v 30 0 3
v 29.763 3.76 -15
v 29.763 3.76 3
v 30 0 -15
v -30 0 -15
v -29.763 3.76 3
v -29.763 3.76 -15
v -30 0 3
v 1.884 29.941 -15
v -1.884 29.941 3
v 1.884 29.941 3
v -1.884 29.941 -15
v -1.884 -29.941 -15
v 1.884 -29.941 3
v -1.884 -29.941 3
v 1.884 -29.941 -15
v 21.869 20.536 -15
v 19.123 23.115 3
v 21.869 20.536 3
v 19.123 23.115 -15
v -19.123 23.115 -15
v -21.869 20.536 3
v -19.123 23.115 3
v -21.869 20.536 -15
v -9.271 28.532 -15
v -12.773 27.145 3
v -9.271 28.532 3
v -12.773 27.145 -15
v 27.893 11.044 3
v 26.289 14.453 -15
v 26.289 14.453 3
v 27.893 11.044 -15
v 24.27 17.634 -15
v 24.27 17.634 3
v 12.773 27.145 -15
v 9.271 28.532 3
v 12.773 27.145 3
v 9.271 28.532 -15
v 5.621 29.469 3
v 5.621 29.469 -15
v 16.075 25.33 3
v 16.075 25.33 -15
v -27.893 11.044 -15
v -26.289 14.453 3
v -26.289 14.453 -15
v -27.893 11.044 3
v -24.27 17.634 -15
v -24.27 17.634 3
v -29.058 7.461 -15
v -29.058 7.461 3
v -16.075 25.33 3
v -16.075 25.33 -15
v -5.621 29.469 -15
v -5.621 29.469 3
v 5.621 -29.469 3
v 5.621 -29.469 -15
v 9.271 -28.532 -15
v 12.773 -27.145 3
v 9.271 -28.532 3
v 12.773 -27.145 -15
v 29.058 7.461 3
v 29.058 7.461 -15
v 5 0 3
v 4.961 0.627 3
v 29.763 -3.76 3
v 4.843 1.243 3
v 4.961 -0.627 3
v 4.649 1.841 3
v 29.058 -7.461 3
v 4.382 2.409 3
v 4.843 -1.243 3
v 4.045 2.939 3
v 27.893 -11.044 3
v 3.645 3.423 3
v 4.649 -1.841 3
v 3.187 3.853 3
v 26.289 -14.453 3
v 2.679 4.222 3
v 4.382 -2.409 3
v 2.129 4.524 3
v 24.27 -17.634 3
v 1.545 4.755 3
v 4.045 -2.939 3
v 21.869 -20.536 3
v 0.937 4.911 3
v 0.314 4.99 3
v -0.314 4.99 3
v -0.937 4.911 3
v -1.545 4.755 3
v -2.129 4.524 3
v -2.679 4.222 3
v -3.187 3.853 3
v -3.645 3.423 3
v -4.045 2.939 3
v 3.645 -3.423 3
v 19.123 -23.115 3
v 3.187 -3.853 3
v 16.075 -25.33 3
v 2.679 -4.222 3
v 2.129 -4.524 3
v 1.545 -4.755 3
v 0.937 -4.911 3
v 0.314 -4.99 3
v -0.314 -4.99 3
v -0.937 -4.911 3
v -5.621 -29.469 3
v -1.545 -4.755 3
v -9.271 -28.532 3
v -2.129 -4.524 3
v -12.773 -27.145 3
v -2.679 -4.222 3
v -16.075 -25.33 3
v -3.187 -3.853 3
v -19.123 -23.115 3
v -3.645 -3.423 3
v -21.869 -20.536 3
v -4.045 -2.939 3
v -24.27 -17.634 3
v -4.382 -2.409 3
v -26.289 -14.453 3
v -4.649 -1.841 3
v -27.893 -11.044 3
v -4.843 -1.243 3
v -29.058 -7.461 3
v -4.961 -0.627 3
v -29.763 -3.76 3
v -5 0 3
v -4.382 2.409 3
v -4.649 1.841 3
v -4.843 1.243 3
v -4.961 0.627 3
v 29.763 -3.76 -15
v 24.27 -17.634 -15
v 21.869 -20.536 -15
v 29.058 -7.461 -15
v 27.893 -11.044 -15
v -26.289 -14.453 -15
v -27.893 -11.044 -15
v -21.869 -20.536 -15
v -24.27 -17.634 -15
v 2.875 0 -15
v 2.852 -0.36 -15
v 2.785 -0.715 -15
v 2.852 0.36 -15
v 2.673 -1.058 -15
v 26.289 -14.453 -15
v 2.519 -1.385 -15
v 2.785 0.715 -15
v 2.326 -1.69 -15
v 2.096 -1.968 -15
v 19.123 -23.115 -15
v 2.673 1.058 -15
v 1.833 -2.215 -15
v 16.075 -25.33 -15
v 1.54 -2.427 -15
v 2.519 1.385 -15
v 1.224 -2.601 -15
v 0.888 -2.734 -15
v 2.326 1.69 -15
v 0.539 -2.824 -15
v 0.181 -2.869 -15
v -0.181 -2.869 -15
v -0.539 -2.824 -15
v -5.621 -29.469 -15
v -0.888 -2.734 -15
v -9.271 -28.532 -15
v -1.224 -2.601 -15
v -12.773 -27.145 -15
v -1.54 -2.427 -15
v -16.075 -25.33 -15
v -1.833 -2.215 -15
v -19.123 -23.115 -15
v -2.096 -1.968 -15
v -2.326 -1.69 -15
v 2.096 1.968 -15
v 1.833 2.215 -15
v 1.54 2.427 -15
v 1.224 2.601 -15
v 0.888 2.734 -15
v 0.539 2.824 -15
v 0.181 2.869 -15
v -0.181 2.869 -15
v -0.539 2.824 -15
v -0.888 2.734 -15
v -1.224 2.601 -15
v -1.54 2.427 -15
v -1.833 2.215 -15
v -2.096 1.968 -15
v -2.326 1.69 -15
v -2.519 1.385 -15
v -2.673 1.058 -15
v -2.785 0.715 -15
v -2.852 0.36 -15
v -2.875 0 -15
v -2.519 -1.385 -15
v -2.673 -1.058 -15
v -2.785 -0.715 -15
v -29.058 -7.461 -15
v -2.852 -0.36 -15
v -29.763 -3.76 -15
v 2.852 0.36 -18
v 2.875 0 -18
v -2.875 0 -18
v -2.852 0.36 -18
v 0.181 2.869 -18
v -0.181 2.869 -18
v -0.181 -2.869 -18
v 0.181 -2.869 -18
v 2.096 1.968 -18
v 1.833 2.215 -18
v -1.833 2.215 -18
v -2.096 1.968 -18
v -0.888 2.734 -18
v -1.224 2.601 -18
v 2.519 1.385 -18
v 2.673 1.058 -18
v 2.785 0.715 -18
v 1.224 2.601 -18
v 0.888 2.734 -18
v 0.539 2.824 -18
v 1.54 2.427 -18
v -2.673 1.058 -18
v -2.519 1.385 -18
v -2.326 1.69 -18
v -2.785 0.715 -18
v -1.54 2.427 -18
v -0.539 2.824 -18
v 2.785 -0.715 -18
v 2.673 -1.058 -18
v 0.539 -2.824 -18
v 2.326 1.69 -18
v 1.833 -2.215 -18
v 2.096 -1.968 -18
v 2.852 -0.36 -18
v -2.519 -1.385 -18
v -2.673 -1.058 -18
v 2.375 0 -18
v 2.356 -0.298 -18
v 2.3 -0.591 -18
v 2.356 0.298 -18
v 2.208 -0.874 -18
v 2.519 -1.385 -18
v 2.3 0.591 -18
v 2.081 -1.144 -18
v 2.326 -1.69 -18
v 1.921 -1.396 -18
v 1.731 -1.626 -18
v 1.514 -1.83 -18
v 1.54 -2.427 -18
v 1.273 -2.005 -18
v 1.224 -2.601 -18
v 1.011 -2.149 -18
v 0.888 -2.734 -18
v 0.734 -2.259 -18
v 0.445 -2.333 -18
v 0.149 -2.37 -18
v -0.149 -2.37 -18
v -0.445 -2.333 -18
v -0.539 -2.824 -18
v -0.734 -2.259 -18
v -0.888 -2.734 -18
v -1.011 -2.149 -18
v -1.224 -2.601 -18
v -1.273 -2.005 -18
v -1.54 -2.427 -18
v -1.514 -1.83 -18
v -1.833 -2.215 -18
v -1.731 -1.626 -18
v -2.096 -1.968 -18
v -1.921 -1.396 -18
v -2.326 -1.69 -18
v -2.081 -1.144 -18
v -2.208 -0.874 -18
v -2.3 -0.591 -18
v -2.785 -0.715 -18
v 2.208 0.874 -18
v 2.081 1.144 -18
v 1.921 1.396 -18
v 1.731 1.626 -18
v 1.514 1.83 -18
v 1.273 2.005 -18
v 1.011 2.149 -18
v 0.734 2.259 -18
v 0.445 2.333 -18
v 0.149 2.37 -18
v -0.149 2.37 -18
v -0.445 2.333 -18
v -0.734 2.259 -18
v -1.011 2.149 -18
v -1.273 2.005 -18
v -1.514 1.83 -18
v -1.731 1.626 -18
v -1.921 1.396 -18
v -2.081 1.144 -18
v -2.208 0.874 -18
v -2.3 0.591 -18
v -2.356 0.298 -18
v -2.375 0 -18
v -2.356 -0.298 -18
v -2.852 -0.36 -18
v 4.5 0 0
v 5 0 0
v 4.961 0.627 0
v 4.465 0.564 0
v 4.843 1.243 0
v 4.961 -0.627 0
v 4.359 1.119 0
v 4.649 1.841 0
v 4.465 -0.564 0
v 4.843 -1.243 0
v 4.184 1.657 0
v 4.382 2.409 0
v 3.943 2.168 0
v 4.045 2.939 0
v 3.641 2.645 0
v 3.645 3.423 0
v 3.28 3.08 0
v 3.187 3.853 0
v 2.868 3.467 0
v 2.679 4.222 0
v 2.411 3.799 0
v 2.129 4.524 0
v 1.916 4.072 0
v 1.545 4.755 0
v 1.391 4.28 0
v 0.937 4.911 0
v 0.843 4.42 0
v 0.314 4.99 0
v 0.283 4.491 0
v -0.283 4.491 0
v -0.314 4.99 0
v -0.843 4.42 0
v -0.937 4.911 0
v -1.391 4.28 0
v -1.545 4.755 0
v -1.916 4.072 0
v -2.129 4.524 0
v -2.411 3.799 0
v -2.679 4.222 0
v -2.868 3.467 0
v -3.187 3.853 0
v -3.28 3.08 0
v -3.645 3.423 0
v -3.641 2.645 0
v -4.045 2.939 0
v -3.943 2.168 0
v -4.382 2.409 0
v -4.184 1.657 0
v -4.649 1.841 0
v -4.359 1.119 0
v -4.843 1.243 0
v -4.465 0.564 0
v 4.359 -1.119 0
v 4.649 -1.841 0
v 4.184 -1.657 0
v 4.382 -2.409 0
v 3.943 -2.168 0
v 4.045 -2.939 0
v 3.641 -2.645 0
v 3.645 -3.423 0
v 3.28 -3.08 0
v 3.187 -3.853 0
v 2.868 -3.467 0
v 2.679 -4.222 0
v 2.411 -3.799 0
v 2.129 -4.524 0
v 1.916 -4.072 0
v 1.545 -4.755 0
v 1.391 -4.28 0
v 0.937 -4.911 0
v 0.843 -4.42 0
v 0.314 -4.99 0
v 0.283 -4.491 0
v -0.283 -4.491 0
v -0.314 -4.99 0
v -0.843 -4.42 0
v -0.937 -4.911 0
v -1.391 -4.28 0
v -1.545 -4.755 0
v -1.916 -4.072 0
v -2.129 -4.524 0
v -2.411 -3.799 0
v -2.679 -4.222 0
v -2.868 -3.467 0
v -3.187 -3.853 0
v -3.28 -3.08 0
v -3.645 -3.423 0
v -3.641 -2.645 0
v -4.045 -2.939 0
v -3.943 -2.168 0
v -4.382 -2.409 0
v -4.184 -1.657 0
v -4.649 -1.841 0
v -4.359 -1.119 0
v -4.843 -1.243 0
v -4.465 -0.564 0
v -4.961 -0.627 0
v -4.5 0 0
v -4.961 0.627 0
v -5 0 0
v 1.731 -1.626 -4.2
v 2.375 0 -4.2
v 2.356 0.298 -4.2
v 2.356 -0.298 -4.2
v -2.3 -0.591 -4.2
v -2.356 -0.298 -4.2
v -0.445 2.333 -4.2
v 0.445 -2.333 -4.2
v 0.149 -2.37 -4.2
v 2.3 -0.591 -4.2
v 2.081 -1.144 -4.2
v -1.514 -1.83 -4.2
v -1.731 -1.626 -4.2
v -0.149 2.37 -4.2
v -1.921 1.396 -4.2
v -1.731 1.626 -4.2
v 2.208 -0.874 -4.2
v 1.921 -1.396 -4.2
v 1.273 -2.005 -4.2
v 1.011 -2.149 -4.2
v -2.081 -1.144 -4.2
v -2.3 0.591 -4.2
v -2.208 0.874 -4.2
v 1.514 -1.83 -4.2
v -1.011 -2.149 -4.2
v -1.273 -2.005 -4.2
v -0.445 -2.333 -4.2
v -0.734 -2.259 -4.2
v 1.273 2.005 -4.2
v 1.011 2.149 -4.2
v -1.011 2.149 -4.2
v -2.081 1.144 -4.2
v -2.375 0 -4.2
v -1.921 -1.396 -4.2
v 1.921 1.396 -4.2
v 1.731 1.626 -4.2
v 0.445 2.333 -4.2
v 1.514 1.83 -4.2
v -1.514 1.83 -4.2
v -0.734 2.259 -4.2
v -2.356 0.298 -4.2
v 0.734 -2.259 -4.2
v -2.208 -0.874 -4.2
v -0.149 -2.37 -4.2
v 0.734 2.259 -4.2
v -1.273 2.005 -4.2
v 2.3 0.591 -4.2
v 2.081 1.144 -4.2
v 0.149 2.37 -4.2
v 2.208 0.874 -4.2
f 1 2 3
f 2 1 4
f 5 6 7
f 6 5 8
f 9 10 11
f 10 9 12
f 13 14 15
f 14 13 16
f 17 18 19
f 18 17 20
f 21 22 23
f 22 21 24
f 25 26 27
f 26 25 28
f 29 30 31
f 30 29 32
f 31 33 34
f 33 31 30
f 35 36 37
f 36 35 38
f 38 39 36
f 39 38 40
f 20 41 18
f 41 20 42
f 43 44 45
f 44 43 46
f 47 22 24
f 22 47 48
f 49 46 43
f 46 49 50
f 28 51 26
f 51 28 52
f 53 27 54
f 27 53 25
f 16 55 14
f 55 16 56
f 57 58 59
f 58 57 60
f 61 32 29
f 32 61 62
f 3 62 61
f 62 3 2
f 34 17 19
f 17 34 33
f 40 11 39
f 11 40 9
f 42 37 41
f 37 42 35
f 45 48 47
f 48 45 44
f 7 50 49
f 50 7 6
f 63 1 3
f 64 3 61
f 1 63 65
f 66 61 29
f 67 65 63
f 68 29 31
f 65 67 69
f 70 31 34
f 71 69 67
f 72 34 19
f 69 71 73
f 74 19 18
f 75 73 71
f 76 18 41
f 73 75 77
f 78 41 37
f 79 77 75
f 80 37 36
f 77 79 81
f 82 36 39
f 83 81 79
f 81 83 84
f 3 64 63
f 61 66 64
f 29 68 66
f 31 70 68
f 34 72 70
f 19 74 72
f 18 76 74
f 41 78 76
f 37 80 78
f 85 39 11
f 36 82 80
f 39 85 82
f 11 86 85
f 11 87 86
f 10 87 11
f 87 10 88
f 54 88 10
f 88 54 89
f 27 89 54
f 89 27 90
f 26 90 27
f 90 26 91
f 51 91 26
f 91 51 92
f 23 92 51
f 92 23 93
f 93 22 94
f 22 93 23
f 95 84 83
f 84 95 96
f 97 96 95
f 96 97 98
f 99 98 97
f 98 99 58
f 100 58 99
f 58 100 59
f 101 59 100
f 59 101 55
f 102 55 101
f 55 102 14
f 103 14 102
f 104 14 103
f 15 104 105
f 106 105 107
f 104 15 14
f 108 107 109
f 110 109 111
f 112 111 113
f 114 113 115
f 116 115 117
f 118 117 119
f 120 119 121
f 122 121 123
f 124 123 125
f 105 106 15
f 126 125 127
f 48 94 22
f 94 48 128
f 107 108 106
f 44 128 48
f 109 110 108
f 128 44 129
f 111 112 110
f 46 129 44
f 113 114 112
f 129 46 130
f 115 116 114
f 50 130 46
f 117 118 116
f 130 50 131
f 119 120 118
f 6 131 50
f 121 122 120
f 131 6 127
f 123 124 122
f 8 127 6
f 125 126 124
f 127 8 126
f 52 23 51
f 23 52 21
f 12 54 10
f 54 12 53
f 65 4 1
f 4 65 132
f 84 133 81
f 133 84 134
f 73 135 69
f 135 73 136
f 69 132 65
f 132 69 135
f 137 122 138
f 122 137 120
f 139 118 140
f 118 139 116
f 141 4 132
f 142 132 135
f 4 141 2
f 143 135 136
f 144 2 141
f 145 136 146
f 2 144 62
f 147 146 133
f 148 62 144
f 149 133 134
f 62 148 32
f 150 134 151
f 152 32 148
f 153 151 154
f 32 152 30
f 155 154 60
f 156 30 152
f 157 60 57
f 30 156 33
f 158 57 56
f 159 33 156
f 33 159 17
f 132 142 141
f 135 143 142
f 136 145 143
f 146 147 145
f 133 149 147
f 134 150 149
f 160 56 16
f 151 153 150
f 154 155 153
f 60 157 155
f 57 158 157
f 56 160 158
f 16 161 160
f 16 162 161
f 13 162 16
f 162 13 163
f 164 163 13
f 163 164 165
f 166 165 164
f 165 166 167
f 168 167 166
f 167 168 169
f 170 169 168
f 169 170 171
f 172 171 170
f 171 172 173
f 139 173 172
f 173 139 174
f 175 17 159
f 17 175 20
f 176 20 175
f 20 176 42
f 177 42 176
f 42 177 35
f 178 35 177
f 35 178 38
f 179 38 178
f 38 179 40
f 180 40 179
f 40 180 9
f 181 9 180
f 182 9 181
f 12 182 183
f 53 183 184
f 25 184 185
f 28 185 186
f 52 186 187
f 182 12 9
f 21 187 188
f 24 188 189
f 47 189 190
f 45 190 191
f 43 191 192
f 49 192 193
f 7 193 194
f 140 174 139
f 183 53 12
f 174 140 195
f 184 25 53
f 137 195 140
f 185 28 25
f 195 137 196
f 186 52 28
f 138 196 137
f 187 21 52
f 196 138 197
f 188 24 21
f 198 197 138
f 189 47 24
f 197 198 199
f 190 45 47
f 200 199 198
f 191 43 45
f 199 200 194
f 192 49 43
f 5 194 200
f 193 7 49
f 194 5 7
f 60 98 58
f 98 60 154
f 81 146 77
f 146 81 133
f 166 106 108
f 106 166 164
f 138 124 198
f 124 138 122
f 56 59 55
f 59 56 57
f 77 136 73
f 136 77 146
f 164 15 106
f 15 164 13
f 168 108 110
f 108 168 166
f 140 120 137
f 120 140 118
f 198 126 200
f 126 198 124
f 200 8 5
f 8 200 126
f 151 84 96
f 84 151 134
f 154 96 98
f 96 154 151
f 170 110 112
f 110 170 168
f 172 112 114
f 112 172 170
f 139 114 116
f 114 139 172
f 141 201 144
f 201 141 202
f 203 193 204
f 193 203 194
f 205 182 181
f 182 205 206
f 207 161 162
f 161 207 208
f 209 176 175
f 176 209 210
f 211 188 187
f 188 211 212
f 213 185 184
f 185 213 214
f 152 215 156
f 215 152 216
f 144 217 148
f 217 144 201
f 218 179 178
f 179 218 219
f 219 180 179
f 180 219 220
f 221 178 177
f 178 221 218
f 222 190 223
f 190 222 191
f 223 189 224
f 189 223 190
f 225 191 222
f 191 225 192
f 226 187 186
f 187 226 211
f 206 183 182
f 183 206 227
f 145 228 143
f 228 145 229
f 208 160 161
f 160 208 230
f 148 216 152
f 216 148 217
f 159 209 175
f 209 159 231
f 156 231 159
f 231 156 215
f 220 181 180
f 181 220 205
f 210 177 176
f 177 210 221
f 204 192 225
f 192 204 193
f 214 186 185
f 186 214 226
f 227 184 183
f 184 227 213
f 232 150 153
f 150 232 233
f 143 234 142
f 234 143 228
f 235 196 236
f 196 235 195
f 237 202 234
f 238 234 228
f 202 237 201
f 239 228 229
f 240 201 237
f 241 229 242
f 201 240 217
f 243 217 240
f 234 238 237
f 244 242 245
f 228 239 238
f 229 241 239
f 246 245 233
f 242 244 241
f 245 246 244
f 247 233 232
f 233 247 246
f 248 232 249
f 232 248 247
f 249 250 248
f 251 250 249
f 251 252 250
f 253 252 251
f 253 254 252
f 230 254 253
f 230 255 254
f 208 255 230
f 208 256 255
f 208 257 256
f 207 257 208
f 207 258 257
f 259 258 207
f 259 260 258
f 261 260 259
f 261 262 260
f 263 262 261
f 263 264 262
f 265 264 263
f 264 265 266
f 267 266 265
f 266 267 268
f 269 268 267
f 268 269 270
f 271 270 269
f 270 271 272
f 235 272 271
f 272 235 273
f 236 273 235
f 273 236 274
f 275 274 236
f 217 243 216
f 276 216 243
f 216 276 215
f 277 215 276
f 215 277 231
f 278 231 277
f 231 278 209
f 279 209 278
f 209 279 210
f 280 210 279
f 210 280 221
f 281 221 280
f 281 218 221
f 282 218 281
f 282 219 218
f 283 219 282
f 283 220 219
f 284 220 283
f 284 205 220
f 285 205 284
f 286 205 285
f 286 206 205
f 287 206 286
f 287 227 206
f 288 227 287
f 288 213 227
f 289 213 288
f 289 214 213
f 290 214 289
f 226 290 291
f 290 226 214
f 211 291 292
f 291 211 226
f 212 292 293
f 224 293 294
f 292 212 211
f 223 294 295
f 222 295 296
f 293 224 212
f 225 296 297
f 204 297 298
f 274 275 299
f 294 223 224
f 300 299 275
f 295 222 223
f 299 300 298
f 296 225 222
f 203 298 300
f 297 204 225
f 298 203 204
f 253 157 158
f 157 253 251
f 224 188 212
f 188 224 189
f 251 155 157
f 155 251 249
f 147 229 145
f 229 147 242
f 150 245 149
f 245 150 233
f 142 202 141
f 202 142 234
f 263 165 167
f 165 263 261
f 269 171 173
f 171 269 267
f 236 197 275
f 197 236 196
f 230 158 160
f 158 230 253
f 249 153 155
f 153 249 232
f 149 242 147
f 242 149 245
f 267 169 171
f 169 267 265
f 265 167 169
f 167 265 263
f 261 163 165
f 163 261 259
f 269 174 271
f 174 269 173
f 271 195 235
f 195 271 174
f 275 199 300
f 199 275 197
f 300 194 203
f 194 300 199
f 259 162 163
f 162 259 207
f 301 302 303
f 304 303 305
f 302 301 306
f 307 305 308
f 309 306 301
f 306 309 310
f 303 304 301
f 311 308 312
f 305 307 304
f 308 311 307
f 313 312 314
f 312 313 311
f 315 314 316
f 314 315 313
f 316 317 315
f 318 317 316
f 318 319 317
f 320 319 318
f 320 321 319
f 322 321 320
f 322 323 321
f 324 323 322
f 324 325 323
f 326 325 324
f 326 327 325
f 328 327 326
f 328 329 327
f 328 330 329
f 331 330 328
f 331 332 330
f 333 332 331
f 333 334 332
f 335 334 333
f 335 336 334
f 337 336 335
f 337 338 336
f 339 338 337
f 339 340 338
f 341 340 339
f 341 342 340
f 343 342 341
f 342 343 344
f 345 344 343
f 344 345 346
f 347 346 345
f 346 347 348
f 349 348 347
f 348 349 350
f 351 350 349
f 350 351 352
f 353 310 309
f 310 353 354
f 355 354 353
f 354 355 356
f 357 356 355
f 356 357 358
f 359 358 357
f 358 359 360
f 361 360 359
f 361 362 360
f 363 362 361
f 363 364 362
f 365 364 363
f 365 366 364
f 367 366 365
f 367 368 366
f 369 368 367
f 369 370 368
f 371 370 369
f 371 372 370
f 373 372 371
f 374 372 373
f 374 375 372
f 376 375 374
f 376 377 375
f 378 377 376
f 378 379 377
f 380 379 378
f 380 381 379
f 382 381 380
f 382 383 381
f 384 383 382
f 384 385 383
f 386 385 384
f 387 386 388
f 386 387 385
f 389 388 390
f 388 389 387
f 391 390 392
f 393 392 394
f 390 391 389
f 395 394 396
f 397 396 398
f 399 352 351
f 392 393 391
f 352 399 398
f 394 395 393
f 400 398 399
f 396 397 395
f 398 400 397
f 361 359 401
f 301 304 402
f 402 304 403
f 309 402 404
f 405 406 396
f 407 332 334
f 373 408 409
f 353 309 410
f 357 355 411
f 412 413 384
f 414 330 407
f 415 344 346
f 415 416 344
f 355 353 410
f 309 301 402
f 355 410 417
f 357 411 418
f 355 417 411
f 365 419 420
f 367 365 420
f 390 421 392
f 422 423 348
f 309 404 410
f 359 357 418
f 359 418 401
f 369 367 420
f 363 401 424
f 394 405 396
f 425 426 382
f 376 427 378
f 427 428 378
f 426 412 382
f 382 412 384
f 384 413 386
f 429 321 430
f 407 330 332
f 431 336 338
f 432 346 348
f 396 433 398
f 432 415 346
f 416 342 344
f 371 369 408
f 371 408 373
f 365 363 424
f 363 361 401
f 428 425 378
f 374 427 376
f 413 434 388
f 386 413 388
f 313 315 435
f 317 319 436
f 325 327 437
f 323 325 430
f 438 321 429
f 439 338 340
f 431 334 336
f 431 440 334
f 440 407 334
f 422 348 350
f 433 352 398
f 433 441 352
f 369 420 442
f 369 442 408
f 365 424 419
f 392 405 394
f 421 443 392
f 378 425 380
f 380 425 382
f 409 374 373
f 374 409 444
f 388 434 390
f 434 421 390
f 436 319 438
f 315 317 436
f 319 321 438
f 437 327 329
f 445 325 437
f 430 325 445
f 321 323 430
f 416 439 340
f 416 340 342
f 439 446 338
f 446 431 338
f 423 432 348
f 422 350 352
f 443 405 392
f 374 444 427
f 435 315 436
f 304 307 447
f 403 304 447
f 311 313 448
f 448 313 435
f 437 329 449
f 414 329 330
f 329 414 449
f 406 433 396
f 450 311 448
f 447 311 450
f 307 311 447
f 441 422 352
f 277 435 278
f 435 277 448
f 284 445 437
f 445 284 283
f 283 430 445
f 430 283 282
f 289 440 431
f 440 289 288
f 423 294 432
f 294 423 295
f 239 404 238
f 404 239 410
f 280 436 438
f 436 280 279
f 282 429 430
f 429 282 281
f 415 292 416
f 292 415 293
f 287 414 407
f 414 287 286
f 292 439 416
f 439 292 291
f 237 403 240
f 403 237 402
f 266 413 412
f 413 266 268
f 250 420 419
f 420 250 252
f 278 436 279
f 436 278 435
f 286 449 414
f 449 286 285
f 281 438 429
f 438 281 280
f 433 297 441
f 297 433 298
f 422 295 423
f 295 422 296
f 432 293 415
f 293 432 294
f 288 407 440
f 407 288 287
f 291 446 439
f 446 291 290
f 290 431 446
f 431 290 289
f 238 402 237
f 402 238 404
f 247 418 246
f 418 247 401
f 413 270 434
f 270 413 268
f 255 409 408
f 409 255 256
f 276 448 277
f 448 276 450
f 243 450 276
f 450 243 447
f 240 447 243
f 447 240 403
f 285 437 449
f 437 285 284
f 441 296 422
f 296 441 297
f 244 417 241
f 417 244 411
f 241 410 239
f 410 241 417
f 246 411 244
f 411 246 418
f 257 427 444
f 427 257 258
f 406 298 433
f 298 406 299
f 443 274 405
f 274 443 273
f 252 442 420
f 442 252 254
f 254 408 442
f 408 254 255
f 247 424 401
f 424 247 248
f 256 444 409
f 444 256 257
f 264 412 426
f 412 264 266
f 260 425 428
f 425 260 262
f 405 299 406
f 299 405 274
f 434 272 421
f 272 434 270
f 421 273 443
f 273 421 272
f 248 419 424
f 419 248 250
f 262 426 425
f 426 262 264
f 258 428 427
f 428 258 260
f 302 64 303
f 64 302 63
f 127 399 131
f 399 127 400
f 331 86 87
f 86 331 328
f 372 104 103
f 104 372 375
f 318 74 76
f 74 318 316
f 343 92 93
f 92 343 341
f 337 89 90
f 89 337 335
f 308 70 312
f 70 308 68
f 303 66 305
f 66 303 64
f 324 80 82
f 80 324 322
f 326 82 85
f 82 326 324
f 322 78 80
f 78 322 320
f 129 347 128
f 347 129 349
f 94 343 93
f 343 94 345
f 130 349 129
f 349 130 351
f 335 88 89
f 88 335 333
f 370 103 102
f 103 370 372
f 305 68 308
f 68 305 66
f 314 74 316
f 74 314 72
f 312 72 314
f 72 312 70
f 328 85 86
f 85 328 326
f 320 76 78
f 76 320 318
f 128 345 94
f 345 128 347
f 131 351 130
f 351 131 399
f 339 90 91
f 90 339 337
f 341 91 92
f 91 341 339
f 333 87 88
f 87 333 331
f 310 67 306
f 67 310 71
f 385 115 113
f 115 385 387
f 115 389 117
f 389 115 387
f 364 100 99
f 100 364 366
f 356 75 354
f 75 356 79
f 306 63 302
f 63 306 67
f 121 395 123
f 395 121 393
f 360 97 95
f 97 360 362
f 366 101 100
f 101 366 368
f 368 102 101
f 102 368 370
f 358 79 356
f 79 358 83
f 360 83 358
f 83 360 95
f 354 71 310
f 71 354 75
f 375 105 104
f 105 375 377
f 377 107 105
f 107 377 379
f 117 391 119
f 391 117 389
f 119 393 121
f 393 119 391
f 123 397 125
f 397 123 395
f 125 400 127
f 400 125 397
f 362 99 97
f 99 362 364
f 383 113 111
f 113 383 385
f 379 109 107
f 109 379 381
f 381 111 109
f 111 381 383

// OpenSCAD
$fn = 50;

difference() {
	union() {
		translate(v = [0, 0, -15.0]) {
			cylinder(h = 18, r = 30.0);
		}
		#translate(v = [0, 0, -18.0]) {
			cylinder(h = 18, r = 2.875);
		}
	}
	union() {
		translate(v = [0, 0, 0]) {
			rotate(a = [0, 0, 0]) {
				difference() {
					union() {
						translate(v = [0, 0, -18.0]) {
							cylinder(h = 18, r = 2.25);
						}
						translate(v = [0, 0, -4.2]) {
							cylinder(h = 4.2, r1 = 2.375, r2 = 4.5);
						}
						translate(v = [0, 0, -18.0]) {
							cylinder(h = 18, r = 2.375);
						}
						translate(v = [0, 0, -18.0]) {
							cylinder(h = 18, r = 2.25);
						}
					}
					union();
				}
			}
		}
		#cylinder(h = 3, r = 5.0);
	}
}
